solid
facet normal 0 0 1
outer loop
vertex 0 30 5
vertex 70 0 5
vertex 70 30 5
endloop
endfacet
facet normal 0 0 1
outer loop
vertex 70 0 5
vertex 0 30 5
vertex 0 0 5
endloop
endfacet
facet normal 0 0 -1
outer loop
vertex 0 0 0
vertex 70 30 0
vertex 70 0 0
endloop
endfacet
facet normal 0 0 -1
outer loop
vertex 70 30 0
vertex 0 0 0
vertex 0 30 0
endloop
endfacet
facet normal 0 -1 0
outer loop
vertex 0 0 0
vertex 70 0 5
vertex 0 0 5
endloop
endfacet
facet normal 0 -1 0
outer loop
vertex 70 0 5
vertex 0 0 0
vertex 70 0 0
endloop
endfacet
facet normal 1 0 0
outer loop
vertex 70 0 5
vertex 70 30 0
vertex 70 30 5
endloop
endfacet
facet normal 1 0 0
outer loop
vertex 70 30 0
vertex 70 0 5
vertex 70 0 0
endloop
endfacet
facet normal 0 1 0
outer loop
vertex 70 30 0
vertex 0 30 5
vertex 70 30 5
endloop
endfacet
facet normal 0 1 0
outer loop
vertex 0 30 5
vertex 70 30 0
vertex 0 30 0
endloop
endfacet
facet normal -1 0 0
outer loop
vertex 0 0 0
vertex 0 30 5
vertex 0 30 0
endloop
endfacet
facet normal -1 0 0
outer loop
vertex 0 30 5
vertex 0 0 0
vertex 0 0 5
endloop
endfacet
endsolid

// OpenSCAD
// Define dimensions for the rectangular block
block_length = 70;  // Increased length to make the block more elongated
block_width = 30;   // Width remains the same
block_height = 5;   // Reduced height to make the block thinner

// Create the rectangular block
cube([block_length, block_width, block_height]);
